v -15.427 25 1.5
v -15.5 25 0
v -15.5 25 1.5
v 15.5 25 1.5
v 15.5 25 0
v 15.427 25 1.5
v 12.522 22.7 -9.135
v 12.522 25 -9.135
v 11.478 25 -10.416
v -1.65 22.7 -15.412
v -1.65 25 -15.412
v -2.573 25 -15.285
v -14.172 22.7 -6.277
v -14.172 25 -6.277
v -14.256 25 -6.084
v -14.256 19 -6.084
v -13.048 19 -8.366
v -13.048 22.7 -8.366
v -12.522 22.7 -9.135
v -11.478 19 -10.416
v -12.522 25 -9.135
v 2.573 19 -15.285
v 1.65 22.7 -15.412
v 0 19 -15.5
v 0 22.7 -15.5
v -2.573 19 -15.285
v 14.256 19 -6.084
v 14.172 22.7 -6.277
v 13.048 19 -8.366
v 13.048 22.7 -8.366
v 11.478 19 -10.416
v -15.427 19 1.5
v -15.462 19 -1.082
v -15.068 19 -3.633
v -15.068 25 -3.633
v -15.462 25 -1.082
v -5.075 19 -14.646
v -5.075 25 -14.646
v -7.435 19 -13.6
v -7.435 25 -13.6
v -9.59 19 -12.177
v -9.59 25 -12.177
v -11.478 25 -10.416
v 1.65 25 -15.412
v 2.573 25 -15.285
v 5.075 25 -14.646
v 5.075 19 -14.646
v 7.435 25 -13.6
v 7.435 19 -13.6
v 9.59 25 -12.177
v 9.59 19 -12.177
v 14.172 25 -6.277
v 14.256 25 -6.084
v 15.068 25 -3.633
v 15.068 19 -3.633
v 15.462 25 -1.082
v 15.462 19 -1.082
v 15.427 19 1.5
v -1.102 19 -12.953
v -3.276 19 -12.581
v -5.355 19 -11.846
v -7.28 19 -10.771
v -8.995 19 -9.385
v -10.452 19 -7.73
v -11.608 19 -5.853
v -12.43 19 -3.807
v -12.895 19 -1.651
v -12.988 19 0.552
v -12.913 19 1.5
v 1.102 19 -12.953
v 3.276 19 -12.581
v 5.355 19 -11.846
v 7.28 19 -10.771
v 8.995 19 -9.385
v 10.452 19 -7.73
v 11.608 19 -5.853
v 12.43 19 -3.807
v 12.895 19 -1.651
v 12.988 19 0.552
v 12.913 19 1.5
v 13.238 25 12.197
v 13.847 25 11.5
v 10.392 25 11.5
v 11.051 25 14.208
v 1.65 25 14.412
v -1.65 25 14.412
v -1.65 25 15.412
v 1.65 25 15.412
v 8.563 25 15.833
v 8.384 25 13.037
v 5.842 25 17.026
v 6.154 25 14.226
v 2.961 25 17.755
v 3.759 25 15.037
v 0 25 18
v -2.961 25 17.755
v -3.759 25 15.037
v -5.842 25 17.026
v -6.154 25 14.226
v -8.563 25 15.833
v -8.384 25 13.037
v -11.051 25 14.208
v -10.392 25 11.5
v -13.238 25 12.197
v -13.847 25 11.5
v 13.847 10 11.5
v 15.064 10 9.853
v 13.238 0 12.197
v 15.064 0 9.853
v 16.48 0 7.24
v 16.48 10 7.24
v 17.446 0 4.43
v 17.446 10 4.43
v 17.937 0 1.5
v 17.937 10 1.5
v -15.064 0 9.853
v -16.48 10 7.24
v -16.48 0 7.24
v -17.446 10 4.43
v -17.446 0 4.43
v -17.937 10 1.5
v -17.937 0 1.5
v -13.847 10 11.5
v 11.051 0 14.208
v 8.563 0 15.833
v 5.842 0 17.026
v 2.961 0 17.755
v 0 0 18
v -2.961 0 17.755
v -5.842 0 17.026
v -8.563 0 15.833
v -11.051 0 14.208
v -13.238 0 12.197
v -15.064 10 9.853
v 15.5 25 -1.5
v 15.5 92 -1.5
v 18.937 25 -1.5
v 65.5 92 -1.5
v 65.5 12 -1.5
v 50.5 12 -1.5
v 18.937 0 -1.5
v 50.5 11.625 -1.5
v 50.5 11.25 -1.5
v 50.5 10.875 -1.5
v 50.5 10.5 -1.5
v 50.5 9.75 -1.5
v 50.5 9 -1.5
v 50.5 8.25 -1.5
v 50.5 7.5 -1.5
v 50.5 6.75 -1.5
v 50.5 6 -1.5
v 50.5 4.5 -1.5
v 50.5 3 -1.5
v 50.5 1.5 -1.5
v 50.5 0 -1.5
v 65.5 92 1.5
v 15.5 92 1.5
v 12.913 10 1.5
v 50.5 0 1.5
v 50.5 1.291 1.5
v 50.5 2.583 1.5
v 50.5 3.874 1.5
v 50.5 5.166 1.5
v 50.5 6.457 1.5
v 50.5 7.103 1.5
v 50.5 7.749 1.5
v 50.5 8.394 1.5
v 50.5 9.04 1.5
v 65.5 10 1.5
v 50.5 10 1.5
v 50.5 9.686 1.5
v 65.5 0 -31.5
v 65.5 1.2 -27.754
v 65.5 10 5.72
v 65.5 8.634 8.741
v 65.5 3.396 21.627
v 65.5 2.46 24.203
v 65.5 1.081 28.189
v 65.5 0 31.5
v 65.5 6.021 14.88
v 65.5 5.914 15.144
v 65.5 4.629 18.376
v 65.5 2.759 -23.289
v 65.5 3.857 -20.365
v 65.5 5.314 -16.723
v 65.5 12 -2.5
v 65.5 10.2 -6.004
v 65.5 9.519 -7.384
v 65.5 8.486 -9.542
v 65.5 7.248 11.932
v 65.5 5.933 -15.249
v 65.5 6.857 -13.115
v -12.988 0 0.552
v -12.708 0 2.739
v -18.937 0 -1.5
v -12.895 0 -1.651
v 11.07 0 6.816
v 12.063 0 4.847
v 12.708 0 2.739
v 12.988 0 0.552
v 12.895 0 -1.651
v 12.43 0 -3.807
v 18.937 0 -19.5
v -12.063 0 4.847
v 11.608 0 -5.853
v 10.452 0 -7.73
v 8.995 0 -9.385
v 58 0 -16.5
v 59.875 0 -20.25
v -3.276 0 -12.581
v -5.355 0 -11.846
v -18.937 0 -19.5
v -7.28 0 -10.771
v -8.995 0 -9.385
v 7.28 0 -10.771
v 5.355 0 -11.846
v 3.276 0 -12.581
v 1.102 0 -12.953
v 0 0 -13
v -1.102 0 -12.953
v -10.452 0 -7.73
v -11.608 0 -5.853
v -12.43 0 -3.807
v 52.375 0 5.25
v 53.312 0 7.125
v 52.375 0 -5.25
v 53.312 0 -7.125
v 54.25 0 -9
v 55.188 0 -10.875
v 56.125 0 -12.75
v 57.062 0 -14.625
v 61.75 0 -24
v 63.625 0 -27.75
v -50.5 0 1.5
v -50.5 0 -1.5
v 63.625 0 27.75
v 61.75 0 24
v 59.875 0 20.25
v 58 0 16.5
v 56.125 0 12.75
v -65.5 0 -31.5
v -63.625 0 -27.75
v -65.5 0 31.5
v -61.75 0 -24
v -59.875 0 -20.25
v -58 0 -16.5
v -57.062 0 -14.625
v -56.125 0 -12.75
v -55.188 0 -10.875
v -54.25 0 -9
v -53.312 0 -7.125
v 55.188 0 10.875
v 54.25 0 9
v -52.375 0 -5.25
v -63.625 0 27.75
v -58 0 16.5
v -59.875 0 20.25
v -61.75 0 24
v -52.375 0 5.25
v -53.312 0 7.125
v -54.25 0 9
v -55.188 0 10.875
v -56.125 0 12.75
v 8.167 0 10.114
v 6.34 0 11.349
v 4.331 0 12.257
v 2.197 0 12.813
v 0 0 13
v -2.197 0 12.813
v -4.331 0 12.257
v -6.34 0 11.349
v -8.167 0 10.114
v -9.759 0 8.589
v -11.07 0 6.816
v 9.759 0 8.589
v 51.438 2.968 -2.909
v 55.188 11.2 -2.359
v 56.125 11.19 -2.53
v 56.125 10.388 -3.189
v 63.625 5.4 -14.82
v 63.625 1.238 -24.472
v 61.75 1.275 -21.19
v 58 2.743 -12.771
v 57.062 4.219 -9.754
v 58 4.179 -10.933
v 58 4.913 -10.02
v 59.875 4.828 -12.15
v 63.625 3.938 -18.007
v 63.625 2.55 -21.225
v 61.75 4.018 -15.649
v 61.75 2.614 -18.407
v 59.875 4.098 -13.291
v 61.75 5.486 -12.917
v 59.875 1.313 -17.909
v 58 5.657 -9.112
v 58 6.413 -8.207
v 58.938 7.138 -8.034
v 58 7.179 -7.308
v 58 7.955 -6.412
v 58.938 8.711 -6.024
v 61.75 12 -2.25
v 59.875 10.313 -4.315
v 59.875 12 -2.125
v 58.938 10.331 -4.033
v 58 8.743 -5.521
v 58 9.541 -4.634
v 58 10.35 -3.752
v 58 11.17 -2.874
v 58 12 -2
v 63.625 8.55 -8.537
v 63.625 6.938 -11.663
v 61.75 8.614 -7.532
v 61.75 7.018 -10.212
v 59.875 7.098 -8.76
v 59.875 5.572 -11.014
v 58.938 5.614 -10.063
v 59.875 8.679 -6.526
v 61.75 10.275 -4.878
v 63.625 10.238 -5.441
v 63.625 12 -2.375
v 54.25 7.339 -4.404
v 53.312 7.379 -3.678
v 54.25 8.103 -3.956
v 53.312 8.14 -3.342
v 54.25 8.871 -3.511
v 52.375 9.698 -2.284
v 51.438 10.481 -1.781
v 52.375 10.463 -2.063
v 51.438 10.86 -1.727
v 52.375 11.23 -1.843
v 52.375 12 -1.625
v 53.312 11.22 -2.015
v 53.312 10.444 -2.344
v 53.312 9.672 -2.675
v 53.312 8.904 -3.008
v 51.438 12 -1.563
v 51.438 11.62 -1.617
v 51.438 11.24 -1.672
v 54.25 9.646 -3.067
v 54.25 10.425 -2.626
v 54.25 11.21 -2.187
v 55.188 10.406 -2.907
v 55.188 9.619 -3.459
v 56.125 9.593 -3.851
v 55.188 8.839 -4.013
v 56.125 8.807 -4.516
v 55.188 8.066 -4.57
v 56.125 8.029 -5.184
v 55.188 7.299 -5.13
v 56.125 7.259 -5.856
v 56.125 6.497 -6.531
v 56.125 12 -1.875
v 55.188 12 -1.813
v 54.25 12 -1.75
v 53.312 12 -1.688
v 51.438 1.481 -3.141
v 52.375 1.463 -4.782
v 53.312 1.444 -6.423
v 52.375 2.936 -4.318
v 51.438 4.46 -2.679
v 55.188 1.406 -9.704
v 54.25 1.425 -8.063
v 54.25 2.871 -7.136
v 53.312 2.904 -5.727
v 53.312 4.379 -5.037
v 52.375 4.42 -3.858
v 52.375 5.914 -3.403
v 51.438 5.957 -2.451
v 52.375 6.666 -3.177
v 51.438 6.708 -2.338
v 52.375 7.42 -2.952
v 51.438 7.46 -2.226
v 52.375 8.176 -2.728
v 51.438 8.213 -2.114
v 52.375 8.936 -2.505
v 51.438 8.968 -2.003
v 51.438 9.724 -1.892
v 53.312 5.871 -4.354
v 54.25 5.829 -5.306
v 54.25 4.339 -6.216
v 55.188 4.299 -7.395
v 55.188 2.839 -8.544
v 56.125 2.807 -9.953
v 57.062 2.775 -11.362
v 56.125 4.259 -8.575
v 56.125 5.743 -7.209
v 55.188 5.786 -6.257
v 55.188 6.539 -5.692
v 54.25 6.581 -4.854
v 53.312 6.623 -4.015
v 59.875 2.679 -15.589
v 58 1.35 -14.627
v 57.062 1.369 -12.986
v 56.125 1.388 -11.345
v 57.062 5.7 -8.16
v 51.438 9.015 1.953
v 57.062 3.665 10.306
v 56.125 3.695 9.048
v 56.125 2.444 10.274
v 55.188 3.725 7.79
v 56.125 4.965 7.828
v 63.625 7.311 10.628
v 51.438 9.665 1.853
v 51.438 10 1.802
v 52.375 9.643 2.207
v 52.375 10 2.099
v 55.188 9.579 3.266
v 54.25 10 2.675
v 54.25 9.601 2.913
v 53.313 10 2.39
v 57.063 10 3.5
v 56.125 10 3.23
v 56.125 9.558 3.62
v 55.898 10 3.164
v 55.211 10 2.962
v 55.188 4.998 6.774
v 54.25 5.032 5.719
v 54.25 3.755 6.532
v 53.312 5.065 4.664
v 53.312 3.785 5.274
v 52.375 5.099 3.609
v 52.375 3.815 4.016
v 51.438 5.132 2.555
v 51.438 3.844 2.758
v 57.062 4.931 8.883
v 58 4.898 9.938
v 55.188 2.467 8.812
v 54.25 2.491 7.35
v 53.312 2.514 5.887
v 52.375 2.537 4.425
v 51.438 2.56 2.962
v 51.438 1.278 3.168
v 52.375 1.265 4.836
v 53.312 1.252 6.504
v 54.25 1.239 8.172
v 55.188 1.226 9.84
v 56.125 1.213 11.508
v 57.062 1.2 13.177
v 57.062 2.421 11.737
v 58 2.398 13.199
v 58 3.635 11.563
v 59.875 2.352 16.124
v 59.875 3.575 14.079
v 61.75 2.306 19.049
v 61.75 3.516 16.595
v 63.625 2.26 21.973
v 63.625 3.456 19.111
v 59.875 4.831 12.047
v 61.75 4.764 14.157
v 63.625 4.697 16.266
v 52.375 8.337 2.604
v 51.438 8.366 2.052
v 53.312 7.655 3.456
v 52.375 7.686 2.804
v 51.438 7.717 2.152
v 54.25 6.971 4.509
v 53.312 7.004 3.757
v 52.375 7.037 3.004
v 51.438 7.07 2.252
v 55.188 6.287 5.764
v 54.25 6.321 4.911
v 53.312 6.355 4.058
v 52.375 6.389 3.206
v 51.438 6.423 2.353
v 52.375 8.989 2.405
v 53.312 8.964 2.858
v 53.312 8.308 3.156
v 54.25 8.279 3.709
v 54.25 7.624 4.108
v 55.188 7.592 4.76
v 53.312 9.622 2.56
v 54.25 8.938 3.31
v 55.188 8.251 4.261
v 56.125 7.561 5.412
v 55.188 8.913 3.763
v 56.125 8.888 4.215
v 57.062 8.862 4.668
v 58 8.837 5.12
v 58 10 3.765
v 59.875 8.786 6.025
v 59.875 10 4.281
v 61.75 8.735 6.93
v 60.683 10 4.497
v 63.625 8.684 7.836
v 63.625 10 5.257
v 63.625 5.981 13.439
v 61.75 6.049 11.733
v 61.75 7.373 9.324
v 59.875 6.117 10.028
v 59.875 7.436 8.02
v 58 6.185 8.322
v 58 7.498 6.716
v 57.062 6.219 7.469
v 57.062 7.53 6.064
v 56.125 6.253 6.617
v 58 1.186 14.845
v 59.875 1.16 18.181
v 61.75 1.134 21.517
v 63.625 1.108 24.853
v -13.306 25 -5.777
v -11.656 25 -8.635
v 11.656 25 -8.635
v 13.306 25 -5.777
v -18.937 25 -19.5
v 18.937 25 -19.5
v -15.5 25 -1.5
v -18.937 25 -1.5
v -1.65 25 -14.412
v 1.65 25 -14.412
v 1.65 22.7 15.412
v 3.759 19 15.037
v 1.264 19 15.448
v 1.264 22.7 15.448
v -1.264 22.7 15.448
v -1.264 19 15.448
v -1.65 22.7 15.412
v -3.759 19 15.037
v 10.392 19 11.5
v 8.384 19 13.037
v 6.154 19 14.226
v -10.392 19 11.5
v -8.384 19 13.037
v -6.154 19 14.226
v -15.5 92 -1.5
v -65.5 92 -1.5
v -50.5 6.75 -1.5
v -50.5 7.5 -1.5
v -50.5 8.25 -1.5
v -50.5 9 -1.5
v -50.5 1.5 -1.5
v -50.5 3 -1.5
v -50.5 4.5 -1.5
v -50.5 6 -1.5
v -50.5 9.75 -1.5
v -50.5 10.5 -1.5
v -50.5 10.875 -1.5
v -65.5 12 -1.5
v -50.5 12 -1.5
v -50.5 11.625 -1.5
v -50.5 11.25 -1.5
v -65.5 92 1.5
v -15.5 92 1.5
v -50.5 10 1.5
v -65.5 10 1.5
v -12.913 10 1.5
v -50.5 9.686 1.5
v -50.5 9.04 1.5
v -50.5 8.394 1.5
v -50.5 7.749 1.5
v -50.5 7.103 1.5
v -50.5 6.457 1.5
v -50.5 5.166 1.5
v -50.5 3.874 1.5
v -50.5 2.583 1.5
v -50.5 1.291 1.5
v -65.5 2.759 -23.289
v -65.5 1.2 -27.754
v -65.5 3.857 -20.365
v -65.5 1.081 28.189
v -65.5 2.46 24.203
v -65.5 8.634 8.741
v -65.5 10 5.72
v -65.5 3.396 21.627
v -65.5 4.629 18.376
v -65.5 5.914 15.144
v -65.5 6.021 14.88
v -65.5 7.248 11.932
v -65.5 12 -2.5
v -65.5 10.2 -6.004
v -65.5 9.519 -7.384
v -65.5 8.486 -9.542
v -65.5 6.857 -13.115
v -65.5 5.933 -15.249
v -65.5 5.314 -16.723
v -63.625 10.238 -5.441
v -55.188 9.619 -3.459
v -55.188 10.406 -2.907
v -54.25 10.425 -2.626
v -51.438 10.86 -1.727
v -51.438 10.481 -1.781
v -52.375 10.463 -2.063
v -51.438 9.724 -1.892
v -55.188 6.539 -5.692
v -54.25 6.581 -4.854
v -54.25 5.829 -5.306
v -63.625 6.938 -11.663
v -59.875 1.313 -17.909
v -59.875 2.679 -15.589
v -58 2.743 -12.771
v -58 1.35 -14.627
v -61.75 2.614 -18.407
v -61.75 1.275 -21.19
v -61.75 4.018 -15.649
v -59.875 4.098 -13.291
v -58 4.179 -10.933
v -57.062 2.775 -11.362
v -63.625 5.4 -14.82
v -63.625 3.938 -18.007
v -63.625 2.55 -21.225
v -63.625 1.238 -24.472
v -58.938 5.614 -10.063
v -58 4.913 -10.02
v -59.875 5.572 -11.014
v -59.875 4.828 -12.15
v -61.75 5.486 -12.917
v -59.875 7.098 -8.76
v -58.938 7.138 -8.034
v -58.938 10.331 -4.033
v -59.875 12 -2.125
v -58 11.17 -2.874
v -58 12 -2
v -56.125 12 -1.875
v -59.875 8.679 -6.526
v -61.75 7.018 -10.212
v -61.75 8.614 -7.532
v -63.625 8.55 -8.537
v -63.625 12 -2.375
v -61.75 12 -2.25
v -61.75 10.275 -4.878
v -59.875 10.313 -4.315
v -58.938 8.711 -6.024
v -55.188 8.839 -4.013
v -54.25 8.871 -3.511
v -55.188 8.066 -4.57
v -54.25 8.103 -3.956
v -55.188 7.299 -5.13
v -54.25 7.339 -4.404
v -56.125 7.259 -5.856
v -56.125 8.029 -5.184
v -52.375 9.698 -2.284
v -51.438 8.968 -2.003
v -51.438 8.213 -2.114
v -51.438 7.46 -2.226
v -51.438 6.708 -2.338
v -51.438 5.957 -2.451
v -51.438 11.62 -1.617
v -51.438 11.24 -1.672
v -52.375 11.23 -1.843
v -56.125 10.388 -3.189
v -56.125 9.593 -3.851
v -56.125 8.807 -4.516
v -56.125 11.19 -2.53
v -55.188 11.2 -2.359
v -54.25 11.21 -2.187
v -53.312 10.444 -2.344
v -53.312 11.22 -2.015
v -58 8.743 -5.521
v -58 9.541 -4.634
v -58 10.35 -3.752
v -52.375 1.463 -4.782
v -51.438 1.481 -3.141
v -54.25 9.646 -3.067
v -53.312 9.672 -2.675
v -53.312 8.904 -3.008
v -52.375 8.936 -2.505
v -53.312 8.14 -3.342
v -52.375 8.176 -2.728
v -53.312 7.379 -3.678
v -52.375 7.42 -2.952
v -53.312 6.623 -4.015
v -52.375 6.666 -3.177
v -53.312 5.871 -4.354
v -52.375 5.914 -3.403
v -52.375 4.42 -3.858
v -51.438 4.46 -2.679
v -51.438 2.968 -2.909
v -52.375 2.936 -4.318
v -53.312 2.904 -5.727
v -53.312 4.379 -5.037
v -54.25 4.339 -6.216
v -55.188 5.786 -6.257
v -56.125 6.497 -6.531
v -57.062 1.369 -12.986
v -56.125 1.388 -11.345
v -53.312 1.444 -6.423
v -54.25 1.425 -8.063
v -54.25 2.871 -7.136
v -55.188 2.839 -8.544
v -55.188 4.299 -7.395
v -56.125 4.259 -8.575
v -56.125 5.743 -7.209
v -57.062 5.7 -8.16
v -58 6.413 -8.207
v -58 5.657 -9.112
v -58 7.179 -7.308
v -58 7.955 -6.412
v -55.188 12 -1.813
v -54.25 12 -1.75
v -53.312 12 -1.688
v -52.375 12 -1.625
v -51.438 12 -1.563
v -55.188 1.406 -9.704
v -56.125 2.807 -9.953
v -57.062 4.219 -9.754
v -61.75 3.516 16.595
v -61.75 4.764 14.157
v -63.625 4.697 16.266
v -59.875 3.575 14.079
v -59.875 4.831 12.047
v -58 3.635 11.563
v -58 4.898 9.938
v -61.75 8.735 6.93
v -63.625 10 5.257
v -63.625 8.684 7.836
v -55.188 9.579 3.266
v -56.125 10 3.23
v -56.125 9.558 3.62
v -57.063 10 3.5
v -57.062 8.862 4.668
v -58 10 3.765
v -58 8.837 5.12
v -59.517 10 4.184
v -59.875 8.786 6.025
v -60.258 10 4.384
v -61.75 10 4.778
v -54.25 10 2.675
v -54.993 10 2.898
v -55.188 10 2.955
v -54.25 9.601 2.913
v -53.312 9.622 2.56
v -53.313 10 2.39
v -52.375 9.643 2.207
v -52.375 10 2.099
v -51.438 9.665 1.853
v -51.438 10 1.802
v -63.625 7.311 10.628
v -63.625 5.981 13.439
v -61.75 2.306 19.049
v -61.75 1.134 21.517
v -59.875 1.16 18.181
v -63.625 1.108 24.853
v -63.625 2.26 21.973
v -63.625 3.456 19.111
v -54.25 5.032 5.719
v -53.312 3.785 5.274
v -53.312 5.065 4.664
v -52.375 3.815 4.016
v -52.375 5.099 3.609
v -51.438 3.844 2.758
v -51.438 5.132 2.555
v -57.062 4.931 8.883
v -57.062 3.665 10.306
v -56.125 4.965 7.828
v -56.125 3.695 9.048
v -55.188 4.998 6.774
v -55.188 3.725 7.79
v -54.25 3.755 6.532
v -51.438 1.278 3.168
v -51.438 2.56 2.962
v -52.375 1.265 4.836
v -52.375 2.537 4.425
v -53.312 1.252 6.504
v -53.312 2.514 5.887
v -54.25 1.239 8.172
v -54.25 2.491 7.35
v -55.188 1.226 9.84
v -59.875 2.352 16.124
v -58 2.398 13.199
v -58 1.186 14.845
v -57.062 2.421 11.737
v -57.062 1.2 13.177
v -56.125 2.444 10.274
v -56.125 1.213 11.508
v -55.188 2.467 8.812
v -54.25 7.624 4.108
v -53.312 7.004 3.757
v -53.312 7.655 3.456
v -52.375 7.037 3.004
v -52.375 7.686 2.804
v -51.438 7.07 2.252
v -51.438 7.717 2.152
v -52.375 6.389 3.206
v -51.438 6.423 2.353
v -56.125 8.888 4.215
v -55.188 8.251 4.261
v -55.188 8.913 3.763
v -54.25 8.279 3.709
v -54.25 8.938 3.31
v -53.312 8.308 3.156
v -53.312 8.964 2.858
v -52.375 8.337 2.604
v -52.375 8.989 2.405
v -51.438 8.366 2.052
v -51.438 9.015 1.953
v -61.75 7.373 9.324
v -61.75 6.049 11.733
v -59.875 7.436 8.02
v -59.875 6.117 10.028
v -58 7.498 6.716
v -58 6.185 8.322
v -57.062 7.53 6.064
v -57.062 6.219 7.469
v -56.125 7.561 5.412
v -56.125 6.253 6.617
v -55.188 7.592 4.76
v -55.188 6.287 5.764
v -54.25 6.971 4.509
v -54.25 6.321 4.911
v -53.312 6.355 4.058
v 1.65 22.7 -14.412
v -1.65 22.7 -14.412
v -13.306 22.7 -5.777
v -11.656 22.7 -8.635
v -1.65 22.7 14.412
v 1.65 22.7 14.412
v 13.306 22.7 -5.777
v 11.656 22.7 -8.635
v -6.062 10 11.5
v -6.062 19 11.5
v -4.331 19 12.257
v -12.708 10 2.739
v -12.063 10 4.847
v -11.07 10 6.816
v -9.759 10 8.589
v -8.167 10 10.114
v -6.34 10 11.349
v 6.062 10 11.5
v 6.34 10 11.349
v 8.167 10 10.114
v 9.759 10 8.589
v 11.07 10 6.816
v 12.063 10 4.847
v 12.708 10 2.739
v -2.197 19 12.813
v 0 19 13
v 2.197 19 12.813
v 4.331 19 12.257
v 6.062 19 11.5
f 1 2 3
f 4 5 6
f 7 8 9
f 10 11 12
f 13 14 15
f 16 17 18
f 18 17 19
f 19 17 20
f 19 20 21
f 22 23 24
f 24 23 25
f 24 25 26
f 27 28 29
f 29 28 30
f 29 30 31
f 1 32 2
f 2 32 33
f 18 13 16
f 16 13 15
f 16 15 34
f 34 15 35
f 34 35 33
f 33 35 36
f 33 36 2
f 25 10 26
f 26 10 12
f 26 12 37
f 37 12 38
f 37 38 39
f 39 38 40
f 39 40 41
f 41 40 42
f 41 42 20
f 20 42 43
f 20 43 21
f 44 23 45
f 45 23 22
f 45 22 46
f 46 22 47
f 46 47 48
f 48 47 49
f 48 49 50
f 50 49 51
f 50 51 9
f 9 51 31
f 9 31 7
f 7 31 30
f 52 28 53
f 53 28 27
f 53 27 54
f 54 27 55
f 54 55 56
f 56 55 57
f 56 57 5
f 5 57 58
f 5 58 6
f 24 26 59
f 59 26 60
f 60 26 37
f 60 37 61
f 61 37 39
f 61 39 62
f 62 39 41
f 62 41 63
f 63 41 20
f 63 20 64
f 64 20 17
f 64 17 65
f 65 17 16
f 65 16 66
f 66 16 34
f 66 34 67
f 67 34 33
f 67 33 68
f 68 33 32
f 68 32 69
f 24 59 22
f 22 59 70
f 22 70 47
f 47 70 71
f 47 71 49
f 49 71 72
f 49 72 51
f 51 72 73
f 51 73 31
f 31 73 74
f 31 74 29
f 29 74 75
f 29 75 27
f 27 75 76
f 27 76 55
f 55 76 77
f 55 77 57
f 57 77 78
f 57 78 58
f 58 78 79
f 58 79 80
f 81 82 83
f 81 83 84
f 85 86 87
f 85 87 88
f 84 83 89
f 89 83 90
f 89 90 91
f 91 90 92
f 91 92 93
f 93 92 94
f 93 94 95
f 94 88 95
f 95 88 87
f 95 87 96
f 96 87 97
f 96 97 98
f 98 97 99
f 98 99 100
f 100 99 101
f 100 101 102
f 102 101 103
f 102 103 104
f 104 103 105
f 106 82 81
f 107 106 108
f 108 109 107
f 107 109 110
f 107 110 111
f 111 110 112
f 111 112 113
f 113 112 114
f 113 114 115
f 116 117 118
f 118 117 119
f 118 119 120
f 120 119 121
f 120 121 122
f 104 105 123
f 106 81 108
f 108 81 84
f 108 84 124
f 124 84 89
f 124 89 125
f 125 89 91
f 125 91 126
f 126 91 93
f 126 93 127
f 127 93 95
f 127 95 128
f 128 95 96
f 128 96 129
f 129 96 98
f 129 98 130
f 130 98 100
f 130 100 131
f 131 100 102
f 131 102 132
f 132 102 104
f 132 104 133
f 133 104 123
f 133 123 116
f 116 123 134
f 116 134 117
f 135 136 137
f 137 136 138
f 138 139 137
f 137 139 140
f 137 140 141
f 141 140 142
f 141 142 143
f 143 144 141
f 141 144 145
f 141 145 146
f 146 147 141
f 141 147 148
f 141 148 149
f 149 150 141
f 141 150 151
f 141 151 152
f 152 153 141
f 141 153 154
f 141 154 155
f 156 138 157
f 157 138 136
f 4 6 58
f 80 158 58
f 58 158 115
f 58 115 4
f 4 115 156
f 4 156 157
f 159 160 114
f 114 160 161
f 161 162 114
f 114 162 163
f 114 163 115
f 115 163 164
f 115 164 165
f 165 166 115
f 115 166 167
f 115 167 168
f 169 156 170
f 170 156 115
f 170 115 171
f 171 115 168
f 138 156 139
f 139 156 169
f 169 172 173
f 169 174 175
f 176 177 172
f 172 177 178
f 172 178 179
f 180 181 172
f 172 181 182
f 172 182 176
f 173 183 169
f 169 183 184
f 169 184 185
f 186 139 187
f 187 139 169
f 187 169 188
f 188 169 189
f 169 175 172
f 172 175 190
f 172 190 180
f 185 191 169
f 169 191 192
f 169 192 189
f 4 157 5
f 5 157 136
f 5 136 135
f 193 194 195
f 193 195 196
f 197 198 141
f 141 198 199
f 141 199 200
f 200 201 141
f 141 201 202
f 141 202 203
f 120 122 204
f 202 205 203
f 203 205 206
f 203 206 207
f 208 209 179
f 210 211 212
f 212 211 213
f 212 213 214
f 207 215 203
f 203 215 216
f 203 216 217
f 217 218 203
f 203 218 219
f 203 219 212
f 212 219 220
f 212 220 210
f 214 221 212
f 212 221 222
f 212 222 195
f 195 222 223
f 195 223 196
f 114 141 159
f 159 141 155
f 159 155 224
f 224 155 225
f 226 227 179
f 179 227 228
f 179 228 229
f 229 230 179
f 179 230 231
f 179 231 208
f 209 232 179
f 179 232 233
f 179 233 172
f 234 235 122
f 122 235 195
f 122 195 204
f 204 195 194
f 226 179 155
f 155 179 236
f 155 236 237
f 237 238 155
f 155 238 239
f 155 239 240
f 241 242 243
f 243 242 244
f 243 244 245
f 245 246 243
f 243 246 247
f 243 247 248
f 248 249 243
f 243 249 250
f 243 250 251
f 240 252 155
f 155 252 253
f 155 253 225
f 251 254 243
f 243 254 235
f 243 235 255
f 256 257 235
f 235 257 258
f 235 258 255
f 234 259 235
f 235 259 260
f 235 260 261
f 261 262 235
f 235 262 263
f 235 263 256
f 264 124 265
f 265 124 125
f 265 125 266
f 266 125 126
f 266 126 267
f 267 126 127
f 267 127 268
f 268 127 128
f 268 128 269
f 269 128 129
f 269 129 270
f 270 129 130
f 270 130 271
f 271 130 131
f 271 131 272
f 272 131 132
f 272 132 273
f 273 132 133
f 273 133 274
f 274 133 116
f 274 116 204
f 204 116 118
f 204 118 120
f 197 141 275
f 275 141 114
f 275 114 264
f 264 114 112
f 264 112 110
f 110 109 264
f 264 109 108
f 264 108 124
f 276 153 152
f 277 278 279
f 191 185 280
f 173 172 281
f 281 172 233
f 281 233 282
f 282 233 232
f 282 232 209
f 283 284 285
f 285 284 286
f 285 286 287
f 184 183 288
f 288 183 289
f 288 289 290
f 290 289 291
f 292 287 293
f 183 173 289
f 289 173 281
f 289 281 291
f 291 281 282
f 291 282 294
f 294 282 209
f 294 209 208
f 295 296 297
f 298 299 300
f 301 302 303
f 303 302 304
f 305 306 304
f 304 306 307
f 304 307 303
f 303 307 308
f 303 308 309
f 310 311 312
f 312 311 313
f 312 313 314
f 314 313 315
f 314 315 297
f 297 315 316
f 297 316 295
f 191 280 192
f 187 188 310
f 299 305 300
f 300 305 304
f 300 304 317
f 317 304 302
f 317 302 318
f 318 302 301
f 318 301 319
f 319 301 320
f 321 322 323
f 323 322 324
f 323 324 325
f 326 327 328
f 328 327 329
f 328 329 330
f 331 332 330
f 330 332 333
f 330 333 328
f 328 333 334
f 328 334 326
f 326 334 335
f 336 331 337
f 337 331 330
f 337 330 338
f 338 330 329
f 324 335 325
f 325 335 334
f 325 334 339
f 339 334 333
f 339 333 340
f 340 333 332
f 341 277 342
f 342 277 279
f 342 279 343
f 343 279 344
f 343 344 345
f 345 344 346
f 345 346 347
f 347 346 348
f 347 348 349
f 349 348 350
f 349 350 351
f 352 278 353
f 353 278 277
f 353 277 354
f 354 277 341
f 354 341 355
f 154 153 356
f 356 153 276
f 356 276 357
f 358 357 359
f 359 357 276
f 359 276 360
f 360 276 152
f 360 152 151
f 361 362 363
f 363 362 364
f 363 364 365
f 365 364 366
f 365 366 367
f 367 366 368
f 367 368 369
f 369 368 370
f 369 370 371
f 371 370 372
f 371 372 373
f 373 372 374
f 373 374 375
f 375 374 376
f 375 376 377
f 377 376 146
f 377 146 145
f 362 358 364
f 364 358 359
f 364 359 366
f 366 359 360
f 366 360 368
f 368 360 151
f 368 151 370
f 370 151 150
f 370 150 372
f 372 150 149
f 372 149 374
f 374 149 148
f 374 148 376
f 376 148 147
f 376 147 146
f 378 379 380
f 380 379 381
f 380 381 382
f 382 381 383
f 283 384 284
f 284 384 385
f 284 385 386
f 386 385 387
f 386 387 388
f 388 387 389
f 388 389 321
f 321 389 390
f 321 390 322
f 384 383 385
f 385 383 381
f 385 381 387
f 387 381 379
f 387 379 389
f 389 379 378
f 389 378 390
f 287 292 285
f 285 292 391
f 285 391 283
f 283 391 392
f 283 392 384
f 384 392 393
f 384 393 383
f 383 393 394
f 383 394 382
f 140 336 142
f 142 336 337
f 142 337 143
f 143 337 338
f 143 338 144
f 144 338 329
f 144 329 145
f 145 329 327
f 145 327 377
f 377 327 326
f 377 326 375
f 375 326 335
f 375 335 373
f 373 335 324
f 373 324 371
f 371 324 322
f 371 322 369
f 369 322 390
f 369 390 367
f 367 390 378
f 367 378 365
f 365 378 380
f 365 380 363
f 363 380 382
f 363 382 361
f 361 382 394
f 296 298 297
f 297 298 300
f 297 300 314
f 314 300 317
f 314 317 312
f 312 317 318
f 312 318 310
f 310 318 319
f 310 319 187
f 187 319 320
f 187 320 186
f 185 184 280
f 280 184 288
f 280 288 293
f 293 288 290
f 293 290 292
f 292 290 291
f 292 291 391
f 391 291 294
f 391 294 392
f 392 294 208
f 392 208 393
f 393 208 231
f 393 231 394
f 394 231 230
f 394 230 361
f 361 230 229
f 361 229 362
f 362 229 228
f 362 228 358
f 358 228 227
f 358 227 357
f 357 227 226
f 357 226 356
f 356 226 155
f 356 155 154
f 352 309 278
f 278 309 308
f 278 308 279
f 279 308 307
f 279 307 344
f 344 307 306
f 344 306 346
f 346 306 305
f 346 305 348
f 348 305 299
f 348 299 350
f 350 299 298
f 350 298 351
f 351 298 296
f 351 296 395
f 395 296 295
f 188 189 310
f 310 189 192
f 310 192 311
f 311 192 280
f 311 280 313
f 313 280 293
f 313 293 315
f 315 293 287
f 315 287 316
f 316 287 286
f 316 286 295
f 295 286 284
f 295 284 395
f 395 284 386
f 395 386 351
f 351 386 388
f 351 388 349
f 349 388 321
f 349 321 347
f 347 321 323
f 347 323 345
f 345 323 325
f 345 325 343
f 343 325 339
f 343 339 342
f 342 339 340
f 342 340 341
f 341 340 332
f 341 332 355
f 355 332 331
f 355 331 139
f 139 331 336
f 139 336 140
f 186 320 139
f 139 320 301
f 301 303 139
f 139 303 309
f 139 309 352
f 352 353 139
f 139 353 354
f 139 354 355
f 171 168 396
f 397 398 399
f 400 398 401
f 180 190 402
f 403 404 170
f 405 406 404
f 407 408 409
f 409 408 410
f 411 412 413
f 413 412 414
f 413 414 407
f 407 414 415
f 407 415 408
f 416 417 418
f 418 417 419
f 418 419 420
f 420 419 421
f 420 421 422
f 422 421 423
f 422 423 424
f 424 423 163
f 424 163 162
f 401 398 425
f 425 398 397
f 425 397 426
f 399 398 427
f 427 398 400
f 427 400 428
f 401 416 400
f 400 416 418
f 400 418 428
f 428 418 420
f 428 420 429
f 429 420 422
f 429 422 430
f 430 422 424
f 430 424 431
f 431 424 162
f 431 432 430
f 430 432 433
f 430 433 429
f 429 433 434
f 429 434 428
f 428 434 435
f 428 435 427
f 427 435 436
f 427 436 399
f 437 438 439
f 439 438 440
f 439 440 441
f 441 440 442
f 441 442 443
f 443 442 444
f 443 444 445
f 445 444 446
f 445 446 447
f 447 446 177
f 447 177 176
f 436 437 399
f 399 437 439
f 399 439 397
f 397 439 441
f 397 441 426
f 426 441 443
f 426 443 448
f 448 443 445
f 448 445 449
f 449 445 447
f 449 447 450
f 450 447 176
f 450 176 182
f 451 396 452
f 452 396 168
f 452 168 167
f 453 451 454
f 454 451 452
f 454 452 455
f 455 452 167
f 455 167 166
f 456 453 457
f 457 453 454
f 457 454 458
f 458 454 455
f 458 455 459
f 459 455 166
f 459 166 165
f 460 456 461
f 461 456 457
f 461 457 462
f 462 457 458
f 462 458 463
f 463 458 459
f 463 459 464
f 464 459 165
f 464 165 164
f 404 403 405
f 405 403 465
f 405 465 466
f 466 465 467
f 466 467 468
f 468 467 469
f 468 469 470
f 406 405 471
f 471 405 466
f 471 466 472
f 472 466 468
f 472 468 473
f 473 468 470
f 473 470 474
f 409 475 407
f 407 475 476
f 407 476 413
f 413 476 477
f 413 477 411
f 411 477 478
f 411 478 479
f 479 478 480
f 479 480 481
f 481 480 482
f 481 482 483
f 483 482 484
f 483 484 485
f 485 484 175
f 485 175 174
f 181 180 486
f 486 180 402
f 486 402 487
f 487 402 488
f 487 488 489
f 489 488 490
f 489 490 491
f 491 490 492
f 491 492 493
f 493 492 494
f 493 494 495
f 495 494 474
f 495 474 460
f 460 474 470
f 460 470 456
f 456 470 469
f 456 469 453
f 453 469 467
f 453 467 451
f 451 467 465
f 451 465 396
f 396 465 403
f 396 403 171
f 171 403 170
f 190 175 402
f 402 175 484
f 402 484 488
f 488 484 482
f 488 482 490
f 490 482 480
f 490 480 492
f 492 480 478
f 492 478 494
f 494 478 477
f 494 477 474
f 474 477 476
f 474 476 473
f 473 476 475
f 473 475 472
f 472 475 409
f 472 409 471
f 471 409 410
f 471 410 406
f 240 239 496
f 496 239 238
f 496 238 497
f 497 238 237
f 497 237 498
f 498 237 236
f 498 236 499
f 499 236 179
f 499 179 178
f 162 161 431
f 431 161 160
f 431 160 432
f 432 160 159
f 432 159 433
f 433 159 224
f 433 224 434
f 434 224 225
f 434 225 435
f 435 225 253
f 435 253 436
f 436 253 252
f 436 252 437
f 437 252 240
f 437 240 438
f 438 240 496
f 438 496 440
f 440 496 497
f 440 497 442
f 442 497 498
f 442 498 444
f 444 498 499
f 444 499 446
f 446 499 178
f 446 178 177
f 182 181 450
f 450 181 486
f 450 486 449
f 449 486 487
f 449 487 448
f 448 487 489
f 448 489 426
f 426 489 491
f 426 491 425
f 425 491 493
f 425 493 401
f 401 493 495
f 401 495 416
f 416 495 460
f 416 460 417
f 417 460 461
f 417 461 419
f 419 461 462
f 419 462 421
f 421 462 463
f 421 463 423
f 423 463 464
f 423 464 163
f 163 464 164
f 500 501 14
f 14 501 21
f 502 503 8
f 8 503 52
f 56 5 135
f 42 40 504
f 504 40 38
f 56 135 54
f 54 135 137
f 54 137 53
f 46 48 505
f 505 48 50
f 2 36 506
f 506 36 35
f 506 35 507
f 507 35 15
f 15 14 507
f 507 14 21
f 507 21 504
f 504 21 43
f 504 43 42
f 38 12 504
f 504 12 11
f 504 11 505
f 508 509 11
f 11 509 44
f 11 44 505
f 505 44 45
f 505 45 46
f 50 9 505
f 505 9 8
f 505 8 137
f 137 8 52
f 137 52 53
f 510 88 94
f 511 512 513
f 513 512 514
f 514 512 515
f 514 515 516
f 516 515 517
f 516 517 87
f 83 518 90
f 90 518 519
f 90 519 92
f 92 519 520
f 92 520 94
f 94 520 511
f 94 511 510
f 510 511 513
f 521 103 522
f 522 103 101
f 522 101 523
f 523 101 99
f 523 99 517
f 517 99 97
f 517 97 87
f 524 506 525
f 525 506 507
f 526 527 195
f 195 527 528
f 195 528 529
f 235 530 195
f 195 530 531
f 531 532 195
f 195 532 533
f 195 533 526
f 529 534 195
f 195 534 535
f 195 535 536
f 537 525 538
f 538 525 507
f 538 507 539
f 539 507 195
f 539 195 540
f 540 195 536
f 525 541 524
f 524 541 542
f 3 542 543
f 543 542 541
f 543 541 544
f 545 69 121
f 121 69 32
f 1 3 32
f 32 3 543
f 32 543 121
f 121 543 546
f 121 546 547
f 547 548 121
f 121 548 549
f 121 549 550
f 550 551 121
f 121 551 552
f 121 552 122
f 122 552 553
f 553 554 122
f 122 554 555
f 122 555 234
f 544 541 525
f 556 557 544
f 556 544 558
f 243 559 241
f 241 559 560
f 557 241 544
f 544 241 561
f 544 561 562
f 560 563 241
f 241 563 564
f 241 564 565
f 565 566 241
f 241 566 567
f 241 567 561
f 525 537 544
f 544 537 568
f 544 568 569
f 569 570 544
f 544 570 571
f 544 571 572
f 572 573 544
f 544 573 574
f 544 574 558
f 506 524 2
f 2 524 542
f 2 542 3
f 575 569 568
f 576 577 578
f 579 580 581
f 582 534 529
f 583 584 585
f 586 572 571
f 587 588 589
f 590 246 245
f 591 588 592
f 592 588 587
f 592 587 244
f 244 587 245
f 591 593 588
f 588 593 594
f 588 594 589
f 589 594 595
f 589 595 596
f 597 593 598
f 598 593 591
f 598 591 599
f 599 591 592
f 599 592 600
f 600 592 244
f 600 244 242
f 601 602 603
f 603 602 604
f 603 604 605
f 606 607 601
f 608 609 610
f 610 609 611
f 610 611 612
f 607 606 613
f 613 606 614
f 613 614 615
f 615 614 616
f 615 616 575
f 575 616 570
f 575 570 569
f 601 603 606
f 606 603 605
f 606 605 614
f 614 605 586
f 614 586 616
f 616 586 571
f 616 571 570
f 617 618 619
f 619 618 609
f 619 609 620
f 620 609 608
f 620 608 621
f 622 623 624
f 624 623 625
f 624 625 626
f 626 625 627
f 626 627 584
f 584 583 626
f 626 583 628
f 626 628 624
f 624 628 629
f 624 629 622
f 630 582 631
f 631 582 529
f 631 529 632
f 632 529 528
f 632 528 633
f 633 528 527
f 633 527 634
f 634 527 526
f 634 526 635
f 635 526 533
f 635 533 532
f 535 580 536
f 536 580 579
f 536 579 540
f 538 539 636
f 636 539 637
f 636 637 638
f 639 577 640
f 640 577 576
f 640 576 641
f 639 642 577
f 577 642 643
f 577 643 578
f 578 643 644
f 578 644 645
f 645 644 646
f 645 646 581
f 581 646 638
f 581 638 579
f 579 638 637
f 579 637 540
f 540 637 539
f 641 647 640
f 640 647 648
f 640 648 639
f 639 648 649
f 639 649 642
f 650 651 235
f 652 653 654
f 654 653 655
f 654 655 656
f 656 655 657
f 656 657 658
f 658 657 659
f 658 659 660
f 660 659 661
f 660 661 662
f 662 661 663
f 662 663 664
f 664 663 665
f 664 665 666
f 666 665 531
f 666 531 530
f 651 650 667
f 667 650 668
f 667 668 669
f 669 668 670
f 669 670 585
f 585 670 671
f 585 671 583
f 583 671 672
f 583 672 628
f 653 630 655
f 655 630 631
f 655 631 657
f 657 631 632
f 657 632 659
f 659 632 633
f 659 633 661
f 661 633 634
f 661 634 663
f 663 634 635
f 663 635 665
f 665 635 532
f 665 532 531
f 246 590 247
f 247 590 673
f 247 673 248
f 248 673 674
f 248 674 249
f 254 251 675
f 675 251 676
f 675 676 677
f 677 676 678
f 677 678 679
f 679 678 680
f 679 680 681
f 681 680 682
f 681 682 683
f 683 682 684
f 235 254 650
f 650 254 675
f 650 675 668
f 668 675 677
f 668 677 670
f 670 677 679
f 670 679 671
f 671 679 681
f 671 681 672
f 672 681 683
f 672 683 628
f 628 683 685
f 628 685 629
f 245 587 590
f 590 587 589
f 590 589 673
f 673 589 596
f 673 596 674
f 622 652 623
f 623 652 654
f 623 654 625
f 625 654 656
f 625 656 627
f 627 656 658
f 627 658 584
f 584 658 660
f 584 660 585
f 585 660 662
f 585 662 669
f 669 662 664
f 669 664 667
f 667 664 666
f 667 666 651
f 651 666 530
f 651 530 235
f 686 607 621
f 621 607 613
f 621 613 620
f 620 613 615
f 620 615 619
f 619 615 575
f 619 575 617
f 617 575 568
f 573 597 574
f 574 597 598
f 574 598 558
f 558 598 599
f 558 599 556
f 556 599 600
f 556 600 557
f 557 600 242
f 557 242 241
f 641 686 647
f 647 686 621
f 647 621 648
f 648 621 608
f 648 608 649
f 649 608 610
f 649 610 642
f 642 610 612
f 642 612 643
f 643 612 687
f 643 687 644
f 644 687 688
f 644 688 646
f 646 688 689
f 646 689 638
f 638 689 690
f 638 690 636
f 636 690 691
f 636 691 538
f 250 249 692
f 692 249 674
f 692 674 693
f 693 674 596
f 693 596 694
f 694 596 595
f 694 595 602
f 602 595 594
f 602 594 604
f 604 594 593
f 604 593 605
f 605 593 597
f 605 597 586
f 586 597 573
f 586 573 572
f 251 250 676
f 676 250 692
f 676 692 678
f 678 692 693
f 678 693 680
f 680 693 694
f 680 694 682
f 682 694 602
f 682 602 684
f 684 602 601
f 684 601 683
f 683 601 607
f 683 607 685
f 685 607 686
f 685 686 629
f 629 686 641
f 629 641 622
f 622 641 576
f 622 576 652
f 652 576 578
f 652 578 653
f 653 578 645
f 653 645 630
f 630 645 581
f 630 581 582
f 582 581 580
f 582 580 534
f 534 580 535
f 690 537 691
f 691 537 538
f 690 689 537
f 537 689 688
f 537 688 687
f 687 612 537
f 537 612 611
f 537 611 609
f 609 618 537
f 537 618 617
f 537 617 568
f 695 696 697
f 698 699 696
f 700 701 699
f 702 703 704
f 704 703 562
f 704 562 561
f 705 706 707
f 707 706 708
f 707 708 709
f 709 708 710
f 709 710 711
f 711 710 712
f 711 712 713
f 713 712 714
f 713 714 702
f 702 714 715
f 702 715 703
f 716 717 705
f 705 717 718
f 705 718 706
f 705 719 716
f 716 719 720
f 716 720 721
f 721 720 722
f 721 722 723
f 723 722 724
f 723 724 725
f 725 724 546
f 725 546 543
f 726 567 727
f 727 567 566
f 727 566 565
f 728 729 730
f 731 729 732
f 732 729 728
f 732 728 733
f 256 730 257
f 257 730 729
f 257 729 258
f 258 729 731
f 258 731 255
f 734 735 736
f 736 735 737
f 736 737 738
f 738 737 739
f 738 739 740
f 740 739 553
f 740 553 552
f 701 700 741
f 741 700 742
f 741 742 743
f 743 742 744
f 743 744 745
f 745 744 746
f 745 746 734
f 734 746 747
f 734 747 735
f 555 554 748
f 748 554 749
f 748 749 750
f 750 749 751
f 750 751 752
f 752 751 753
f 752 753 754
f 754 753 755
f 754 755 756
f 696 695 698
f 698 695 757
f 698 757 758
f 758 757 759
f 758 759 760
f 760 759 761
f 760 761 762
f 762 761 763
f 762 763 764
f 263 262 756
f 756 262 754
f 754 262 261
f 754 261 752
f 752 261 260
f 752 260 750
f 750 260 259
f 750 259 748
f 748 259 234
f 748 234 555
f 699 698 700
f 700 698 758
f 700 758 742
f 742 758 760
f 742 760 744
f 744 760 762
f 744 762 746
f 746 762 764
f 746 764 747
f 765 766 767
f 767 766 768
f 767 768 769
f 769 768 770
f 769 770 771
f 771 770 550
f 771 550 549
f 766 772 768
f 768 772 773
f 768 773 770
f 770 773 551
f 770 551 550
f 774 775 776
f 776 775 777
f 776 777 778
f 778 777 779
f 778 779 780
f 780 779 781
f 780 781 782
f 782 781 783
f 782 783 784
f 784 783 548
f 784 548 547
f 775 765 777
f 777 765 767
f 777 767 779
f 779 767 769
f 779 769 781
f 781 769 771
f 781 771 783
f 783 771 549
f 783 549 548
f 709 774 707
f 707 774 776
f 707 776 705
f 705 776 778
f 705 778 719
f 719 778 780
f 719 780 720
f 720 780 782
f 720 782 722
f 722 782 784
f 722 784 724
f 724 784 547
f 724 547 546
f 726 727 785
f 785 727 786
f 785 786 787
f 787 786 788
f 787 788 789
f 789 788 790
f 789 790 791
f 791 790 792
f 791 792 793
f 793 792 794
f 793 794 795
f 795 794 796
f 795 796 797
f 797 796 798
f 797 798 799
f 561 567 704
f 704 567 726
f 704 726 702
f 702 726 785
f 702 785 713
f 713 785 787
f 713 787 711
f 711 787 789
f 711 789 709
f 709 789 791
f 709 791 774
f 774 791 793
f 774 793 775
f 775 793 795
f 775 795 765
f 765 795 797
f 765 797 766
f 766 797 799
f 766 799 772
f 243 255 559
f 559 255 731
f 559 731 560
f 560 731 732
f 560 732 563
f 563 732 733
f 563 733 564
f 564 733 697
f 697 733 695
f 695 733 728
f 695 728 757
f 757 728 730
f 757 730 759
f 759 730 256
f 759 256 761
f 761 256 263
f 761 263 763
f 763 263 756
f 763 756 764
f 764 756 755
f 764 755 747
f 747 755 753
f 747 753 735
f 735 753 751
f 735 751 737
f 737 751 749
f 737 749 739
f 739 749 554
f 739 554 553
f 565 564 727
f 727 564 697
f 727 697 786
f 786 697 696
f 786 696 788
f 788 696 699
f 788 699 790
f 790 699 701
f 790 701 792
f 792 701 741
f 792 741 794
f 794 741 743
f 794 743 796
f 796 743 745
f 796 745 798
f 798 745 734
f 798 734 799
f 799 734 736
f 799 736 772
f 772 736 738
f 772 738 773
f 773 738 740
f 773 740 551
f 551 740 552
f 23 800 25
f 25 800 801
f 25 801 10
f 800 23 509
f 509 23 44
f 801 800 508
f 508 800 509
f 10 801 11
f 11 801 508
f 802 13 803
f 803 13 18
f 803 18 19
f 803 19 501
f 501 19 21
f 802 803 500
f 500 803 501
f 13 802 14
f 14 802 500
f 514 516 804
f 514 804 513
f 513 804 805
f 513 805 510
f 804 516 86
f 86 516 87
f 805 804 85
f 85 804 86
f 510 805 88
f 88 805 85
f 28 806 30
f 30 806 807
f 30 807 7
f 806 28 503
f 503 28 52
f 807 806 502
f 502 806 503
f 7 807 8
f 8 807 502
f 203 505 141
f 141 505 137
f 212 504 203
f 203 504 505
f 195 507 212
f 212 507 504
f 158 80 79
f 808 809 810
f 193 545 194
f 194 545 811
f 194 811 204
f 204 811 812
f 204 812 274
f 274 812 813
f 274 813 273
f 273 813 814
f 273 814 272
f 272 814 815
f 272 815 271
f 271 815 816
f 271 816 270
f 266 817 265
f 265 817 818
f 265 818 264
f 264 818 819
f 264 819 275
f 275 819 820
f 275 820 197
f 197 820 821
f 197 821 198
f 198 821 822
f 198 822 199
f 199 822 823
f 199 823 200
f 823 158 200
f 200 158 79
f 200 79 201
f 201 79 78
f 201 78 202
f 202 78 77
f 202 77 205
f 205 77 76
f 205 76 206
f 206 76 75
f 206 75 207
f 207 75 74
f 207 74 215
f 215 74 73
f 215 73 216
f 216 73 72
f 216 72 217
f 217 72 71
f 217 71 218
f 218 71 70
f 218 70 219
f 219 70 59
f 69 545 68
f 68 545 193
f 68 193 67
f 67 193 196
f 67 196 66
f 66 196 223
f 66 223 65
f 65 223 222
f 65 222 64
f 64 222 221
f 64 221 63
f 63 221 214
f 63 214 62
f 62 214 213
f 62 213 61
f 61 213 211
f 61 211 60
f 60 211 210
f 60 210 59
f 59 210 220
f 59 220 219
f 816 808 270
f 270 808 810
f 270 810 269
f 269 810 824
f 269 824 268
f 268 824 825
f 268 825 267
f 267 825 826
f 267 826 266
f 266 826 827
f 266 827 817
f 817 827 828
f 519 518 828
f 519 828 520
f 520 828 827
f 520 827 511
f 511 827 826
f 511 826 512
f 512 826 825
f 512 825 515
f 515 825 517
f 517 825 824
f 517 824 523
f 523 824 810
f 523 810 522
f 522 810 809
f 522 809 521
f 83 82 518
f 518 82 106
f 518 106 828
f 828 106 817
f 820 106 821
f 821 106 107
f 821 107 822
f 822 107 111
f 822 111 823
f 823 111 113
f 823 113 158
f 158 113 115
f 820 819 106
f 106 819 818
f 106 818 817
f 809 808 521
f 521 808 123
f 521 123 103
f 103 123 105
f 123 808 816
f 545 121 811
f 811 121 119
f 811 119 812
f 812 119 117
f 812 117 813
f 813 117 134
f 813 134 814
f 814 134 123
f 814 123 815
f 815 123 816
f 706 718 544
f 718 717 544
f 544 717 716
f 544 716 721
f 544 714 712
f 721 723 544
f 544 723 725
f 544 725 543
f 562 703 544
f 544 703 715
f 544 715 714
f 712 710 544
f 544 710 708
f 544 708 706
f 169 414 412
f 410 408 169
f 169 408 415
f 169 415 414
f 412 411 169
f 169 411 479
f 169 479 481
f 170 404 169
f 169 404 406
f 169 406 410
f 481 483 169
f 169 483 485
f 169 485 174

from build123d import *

# Parameters (mm, degrees)
SKETCH1_W               = 3
SKETCH1_H               = 80
BOSS_EXTRUDE1_DEPTH     = 50
SKETCH6_W               = 3
SKETCH6_H               = 12
BOSS_EXTRUDE2_DEPTH     = 35
SKETCH14_R              = 18
SKETCH14_R_2            = 15.5
BOSS_EXTRUDE3_DEPTH     = 25
BOSS_EXTRUDE4_DEPTH     = 2.3
CIRPATTERN1_COUNT       = 6
BOSS_EXTRUDE5_START     = -25
BOSS_EXTRUDE5_DEPTH     = 25
BOSS_EXTRUDE6_START     = -25
SKETCH17_R              = 15.5
SKETCH17_R_2            = 13
BOSS_EXTRUDE6_DEPTH     = 19
CUT_EXTRUDE1_DEPTH      = 118.245469157
CUT_EXTRUDE1_DEPTH_BACK = 118.245469157
SKETCH18_W              = 10
SKETCH18_H              = 15


with BuildPart() as part:
    # Sketch1 → Boss-Extrude1 (new body)
    with BuildSketch(Plane(origin=(15.5, 0, 0), x_dir=(0, 0, -1), z_dir=(1, 0, 0))):
        with Locations((0, 52)):
            Rectangle(SKETCH1_W, SKETCH1_H)
    extrude(amount=BOSS_EXTRUDE1_DEPTH)

    # Sketch6 → Boss-Extrude2 (add)
    with BuildSketch(Plane.ZY.offset(-15.5)):
        with Locations((0, 6)):
            Rectangle(SKETCH6_W, SKETCH6_H)
    extrude(amount=-BOSS_EXTRUDE2_DEPTH)

    # Sketch7 → Loft3 section 0
    with BuildSketch(Plane(origin=(50.5, 0, 0), x_dir=(0, 0, -1), z_dir=(1, 0, 0))):
        with BuildLine():
            Line((-1.5, 12), (1.5, 12))
            Line((1.5, 12), (1.5, 0))
            Line((1.5, 0), (-1.5, 0))
            Line((-1.5, 0), (-1.5, 12))
        make_face()
    # Sketch5 → Loft3 section 1
    with BuildSketch(Plane(origin=(65.5, 0, 0), x_dir=(0, 0, -1), z_dir=(1, 0, 0))):
        with BuildLine():
            Line((-1.5, 12), (2.5, 12))
            add(Edge.make_bspline(
                [(2.5, 12), (16.446218703, 4.628977133), (31.5, 0)],
                knots=[0, 0, 0, 1, 1, 1], degree=2))
            Line((31.5, 0), (-31.5, 0))
            add(Edge.make_bspline(
                [(-1.5, 12), (-16.07182757, 4.906260237), (-31.5, 0)],
                knots=[0, 0, 0, 1, 1, 1], degree=2))
        make_face()
    loft()


with BuildPart() as body_2:
    # Mirror3: mirrored copy
    add(part.part.mirror(Plane(origin=(0, 0, 0), x_dir=(0, 0, 1), z_dir=(1, 0, 0))))


with BuildPart() as part_1:
    add(part.part)

    add(body_2.part)  # Boss-Extrude3 merges body 2
    # Sketch14 → Boss-Extrude3 (add)
    with BuildSketch(Plane(origin=(0, 0, 0), x_dir=(1, 0, 0), z_dir=(0, 1, 0))):
        Circle(SKETCH14_R)
        with Locations(Location((0, 0, 0), (0, 0, 180))):
            Circle(SKETCH14_R_2, mode=Mode.SUBTRACT)
    extrude(amount=BOSS_EXTRUDE3_DEPTH)

    # Sketch15 → Boss-Extrude4 (add)
    with BuildSketch(Plane(origin=(0, 25, 0), x_dir=(1, 0, 0), z_dir=(0, 1, 0))):
        Polygon((-1.65, 15.411927199), (-1.65, 14.411927199), (1.65, 14.411927199), (1.65, 15.411927199), (0, 16.251375975), align=None)
    boss_extrude4 = extrude(amount=-BOSS_EXTRUDE4_DEPTH)

    # CirPattern1: Boss-Extrude4 ×6 about axis
    cirpattern1_axis = Axis((0, 0, 0), (0, 1, 0))
    for i in range(1, CIRPATTERN1_COUNT):
        add(boss_extrude4.rotate(cirpattern1_axis, i * 360 / CIRPATTERN1_COUNT))

    # Sketch16 → Boss-Extrude5 (add)
    with BuildSketch(Plane(origin=(0, 25, 0), x_dir=(1, 0, 0), z_dir=(0, 1, 0)).offset(BOSS_EXTRUDE5_START)):
        with BuildLine():
            Line((-18.937391115, 1.5), (-18.937391115, 19.5))
            Line((-18.937391115, 19.5), (18.937391115, 19.5))
            Line((18.937391115, 19.5), (18.937391115, 1.5))
            Line((18.937391115, 1.5), (17.937391115, 1.5))
            ThreePointArc((17.937391115, 1.5), (0, 18), (-17.937391115, 1.5))
            Line((-17.937391115, 1.5), (-18.937391115, 1.5))
        make_face()
    extrude(amount=BOSS_EXTRUDE5_DEPTH)

    # Sketch17 → Boss-Extrude6 (add)
    with BuildSketch(Plane(origin=(0, 25, 0), x_dir=(1, 0, 0), z_dir=(0, 1, 0)).offset(BOSS_EXTRUDE6_START)):
        with Locations(Location((0, 0, 0), (0, 0, 96.110806636))):
            Circle(SKETCH17_R)
        with Locations(Location((0, 0, 0), (0, 0, 270))):
            Circle(SKETCH17_R_2, mode=Mode.SUBTRACT)
    extrude(amount=BOSS_EXTRUDE6_DEPTH)

    # Sketch18 → Cut-Extrude1 (cut, two sides: drawn at the far end of the back side and taken through both)
    with BuildSketch(Plane(origin=(0, 0, 0), x_dir=(0, 0, -1), z_dir=(1, 0, 0)).offset(-CUT_EXTRUDE1_DEPTH_BACK)):
        with Locations((-6.5, 17.5)):
            Rectangle(SKETCH18_W, SKETCH18_H)
    extrude(amount=CUT_EXTRUDE1_DEPTH + CUT_EXTRUDE1_DEPTH_BACK, mode=Mode.SUBTRACT)


solid = part_1.part
